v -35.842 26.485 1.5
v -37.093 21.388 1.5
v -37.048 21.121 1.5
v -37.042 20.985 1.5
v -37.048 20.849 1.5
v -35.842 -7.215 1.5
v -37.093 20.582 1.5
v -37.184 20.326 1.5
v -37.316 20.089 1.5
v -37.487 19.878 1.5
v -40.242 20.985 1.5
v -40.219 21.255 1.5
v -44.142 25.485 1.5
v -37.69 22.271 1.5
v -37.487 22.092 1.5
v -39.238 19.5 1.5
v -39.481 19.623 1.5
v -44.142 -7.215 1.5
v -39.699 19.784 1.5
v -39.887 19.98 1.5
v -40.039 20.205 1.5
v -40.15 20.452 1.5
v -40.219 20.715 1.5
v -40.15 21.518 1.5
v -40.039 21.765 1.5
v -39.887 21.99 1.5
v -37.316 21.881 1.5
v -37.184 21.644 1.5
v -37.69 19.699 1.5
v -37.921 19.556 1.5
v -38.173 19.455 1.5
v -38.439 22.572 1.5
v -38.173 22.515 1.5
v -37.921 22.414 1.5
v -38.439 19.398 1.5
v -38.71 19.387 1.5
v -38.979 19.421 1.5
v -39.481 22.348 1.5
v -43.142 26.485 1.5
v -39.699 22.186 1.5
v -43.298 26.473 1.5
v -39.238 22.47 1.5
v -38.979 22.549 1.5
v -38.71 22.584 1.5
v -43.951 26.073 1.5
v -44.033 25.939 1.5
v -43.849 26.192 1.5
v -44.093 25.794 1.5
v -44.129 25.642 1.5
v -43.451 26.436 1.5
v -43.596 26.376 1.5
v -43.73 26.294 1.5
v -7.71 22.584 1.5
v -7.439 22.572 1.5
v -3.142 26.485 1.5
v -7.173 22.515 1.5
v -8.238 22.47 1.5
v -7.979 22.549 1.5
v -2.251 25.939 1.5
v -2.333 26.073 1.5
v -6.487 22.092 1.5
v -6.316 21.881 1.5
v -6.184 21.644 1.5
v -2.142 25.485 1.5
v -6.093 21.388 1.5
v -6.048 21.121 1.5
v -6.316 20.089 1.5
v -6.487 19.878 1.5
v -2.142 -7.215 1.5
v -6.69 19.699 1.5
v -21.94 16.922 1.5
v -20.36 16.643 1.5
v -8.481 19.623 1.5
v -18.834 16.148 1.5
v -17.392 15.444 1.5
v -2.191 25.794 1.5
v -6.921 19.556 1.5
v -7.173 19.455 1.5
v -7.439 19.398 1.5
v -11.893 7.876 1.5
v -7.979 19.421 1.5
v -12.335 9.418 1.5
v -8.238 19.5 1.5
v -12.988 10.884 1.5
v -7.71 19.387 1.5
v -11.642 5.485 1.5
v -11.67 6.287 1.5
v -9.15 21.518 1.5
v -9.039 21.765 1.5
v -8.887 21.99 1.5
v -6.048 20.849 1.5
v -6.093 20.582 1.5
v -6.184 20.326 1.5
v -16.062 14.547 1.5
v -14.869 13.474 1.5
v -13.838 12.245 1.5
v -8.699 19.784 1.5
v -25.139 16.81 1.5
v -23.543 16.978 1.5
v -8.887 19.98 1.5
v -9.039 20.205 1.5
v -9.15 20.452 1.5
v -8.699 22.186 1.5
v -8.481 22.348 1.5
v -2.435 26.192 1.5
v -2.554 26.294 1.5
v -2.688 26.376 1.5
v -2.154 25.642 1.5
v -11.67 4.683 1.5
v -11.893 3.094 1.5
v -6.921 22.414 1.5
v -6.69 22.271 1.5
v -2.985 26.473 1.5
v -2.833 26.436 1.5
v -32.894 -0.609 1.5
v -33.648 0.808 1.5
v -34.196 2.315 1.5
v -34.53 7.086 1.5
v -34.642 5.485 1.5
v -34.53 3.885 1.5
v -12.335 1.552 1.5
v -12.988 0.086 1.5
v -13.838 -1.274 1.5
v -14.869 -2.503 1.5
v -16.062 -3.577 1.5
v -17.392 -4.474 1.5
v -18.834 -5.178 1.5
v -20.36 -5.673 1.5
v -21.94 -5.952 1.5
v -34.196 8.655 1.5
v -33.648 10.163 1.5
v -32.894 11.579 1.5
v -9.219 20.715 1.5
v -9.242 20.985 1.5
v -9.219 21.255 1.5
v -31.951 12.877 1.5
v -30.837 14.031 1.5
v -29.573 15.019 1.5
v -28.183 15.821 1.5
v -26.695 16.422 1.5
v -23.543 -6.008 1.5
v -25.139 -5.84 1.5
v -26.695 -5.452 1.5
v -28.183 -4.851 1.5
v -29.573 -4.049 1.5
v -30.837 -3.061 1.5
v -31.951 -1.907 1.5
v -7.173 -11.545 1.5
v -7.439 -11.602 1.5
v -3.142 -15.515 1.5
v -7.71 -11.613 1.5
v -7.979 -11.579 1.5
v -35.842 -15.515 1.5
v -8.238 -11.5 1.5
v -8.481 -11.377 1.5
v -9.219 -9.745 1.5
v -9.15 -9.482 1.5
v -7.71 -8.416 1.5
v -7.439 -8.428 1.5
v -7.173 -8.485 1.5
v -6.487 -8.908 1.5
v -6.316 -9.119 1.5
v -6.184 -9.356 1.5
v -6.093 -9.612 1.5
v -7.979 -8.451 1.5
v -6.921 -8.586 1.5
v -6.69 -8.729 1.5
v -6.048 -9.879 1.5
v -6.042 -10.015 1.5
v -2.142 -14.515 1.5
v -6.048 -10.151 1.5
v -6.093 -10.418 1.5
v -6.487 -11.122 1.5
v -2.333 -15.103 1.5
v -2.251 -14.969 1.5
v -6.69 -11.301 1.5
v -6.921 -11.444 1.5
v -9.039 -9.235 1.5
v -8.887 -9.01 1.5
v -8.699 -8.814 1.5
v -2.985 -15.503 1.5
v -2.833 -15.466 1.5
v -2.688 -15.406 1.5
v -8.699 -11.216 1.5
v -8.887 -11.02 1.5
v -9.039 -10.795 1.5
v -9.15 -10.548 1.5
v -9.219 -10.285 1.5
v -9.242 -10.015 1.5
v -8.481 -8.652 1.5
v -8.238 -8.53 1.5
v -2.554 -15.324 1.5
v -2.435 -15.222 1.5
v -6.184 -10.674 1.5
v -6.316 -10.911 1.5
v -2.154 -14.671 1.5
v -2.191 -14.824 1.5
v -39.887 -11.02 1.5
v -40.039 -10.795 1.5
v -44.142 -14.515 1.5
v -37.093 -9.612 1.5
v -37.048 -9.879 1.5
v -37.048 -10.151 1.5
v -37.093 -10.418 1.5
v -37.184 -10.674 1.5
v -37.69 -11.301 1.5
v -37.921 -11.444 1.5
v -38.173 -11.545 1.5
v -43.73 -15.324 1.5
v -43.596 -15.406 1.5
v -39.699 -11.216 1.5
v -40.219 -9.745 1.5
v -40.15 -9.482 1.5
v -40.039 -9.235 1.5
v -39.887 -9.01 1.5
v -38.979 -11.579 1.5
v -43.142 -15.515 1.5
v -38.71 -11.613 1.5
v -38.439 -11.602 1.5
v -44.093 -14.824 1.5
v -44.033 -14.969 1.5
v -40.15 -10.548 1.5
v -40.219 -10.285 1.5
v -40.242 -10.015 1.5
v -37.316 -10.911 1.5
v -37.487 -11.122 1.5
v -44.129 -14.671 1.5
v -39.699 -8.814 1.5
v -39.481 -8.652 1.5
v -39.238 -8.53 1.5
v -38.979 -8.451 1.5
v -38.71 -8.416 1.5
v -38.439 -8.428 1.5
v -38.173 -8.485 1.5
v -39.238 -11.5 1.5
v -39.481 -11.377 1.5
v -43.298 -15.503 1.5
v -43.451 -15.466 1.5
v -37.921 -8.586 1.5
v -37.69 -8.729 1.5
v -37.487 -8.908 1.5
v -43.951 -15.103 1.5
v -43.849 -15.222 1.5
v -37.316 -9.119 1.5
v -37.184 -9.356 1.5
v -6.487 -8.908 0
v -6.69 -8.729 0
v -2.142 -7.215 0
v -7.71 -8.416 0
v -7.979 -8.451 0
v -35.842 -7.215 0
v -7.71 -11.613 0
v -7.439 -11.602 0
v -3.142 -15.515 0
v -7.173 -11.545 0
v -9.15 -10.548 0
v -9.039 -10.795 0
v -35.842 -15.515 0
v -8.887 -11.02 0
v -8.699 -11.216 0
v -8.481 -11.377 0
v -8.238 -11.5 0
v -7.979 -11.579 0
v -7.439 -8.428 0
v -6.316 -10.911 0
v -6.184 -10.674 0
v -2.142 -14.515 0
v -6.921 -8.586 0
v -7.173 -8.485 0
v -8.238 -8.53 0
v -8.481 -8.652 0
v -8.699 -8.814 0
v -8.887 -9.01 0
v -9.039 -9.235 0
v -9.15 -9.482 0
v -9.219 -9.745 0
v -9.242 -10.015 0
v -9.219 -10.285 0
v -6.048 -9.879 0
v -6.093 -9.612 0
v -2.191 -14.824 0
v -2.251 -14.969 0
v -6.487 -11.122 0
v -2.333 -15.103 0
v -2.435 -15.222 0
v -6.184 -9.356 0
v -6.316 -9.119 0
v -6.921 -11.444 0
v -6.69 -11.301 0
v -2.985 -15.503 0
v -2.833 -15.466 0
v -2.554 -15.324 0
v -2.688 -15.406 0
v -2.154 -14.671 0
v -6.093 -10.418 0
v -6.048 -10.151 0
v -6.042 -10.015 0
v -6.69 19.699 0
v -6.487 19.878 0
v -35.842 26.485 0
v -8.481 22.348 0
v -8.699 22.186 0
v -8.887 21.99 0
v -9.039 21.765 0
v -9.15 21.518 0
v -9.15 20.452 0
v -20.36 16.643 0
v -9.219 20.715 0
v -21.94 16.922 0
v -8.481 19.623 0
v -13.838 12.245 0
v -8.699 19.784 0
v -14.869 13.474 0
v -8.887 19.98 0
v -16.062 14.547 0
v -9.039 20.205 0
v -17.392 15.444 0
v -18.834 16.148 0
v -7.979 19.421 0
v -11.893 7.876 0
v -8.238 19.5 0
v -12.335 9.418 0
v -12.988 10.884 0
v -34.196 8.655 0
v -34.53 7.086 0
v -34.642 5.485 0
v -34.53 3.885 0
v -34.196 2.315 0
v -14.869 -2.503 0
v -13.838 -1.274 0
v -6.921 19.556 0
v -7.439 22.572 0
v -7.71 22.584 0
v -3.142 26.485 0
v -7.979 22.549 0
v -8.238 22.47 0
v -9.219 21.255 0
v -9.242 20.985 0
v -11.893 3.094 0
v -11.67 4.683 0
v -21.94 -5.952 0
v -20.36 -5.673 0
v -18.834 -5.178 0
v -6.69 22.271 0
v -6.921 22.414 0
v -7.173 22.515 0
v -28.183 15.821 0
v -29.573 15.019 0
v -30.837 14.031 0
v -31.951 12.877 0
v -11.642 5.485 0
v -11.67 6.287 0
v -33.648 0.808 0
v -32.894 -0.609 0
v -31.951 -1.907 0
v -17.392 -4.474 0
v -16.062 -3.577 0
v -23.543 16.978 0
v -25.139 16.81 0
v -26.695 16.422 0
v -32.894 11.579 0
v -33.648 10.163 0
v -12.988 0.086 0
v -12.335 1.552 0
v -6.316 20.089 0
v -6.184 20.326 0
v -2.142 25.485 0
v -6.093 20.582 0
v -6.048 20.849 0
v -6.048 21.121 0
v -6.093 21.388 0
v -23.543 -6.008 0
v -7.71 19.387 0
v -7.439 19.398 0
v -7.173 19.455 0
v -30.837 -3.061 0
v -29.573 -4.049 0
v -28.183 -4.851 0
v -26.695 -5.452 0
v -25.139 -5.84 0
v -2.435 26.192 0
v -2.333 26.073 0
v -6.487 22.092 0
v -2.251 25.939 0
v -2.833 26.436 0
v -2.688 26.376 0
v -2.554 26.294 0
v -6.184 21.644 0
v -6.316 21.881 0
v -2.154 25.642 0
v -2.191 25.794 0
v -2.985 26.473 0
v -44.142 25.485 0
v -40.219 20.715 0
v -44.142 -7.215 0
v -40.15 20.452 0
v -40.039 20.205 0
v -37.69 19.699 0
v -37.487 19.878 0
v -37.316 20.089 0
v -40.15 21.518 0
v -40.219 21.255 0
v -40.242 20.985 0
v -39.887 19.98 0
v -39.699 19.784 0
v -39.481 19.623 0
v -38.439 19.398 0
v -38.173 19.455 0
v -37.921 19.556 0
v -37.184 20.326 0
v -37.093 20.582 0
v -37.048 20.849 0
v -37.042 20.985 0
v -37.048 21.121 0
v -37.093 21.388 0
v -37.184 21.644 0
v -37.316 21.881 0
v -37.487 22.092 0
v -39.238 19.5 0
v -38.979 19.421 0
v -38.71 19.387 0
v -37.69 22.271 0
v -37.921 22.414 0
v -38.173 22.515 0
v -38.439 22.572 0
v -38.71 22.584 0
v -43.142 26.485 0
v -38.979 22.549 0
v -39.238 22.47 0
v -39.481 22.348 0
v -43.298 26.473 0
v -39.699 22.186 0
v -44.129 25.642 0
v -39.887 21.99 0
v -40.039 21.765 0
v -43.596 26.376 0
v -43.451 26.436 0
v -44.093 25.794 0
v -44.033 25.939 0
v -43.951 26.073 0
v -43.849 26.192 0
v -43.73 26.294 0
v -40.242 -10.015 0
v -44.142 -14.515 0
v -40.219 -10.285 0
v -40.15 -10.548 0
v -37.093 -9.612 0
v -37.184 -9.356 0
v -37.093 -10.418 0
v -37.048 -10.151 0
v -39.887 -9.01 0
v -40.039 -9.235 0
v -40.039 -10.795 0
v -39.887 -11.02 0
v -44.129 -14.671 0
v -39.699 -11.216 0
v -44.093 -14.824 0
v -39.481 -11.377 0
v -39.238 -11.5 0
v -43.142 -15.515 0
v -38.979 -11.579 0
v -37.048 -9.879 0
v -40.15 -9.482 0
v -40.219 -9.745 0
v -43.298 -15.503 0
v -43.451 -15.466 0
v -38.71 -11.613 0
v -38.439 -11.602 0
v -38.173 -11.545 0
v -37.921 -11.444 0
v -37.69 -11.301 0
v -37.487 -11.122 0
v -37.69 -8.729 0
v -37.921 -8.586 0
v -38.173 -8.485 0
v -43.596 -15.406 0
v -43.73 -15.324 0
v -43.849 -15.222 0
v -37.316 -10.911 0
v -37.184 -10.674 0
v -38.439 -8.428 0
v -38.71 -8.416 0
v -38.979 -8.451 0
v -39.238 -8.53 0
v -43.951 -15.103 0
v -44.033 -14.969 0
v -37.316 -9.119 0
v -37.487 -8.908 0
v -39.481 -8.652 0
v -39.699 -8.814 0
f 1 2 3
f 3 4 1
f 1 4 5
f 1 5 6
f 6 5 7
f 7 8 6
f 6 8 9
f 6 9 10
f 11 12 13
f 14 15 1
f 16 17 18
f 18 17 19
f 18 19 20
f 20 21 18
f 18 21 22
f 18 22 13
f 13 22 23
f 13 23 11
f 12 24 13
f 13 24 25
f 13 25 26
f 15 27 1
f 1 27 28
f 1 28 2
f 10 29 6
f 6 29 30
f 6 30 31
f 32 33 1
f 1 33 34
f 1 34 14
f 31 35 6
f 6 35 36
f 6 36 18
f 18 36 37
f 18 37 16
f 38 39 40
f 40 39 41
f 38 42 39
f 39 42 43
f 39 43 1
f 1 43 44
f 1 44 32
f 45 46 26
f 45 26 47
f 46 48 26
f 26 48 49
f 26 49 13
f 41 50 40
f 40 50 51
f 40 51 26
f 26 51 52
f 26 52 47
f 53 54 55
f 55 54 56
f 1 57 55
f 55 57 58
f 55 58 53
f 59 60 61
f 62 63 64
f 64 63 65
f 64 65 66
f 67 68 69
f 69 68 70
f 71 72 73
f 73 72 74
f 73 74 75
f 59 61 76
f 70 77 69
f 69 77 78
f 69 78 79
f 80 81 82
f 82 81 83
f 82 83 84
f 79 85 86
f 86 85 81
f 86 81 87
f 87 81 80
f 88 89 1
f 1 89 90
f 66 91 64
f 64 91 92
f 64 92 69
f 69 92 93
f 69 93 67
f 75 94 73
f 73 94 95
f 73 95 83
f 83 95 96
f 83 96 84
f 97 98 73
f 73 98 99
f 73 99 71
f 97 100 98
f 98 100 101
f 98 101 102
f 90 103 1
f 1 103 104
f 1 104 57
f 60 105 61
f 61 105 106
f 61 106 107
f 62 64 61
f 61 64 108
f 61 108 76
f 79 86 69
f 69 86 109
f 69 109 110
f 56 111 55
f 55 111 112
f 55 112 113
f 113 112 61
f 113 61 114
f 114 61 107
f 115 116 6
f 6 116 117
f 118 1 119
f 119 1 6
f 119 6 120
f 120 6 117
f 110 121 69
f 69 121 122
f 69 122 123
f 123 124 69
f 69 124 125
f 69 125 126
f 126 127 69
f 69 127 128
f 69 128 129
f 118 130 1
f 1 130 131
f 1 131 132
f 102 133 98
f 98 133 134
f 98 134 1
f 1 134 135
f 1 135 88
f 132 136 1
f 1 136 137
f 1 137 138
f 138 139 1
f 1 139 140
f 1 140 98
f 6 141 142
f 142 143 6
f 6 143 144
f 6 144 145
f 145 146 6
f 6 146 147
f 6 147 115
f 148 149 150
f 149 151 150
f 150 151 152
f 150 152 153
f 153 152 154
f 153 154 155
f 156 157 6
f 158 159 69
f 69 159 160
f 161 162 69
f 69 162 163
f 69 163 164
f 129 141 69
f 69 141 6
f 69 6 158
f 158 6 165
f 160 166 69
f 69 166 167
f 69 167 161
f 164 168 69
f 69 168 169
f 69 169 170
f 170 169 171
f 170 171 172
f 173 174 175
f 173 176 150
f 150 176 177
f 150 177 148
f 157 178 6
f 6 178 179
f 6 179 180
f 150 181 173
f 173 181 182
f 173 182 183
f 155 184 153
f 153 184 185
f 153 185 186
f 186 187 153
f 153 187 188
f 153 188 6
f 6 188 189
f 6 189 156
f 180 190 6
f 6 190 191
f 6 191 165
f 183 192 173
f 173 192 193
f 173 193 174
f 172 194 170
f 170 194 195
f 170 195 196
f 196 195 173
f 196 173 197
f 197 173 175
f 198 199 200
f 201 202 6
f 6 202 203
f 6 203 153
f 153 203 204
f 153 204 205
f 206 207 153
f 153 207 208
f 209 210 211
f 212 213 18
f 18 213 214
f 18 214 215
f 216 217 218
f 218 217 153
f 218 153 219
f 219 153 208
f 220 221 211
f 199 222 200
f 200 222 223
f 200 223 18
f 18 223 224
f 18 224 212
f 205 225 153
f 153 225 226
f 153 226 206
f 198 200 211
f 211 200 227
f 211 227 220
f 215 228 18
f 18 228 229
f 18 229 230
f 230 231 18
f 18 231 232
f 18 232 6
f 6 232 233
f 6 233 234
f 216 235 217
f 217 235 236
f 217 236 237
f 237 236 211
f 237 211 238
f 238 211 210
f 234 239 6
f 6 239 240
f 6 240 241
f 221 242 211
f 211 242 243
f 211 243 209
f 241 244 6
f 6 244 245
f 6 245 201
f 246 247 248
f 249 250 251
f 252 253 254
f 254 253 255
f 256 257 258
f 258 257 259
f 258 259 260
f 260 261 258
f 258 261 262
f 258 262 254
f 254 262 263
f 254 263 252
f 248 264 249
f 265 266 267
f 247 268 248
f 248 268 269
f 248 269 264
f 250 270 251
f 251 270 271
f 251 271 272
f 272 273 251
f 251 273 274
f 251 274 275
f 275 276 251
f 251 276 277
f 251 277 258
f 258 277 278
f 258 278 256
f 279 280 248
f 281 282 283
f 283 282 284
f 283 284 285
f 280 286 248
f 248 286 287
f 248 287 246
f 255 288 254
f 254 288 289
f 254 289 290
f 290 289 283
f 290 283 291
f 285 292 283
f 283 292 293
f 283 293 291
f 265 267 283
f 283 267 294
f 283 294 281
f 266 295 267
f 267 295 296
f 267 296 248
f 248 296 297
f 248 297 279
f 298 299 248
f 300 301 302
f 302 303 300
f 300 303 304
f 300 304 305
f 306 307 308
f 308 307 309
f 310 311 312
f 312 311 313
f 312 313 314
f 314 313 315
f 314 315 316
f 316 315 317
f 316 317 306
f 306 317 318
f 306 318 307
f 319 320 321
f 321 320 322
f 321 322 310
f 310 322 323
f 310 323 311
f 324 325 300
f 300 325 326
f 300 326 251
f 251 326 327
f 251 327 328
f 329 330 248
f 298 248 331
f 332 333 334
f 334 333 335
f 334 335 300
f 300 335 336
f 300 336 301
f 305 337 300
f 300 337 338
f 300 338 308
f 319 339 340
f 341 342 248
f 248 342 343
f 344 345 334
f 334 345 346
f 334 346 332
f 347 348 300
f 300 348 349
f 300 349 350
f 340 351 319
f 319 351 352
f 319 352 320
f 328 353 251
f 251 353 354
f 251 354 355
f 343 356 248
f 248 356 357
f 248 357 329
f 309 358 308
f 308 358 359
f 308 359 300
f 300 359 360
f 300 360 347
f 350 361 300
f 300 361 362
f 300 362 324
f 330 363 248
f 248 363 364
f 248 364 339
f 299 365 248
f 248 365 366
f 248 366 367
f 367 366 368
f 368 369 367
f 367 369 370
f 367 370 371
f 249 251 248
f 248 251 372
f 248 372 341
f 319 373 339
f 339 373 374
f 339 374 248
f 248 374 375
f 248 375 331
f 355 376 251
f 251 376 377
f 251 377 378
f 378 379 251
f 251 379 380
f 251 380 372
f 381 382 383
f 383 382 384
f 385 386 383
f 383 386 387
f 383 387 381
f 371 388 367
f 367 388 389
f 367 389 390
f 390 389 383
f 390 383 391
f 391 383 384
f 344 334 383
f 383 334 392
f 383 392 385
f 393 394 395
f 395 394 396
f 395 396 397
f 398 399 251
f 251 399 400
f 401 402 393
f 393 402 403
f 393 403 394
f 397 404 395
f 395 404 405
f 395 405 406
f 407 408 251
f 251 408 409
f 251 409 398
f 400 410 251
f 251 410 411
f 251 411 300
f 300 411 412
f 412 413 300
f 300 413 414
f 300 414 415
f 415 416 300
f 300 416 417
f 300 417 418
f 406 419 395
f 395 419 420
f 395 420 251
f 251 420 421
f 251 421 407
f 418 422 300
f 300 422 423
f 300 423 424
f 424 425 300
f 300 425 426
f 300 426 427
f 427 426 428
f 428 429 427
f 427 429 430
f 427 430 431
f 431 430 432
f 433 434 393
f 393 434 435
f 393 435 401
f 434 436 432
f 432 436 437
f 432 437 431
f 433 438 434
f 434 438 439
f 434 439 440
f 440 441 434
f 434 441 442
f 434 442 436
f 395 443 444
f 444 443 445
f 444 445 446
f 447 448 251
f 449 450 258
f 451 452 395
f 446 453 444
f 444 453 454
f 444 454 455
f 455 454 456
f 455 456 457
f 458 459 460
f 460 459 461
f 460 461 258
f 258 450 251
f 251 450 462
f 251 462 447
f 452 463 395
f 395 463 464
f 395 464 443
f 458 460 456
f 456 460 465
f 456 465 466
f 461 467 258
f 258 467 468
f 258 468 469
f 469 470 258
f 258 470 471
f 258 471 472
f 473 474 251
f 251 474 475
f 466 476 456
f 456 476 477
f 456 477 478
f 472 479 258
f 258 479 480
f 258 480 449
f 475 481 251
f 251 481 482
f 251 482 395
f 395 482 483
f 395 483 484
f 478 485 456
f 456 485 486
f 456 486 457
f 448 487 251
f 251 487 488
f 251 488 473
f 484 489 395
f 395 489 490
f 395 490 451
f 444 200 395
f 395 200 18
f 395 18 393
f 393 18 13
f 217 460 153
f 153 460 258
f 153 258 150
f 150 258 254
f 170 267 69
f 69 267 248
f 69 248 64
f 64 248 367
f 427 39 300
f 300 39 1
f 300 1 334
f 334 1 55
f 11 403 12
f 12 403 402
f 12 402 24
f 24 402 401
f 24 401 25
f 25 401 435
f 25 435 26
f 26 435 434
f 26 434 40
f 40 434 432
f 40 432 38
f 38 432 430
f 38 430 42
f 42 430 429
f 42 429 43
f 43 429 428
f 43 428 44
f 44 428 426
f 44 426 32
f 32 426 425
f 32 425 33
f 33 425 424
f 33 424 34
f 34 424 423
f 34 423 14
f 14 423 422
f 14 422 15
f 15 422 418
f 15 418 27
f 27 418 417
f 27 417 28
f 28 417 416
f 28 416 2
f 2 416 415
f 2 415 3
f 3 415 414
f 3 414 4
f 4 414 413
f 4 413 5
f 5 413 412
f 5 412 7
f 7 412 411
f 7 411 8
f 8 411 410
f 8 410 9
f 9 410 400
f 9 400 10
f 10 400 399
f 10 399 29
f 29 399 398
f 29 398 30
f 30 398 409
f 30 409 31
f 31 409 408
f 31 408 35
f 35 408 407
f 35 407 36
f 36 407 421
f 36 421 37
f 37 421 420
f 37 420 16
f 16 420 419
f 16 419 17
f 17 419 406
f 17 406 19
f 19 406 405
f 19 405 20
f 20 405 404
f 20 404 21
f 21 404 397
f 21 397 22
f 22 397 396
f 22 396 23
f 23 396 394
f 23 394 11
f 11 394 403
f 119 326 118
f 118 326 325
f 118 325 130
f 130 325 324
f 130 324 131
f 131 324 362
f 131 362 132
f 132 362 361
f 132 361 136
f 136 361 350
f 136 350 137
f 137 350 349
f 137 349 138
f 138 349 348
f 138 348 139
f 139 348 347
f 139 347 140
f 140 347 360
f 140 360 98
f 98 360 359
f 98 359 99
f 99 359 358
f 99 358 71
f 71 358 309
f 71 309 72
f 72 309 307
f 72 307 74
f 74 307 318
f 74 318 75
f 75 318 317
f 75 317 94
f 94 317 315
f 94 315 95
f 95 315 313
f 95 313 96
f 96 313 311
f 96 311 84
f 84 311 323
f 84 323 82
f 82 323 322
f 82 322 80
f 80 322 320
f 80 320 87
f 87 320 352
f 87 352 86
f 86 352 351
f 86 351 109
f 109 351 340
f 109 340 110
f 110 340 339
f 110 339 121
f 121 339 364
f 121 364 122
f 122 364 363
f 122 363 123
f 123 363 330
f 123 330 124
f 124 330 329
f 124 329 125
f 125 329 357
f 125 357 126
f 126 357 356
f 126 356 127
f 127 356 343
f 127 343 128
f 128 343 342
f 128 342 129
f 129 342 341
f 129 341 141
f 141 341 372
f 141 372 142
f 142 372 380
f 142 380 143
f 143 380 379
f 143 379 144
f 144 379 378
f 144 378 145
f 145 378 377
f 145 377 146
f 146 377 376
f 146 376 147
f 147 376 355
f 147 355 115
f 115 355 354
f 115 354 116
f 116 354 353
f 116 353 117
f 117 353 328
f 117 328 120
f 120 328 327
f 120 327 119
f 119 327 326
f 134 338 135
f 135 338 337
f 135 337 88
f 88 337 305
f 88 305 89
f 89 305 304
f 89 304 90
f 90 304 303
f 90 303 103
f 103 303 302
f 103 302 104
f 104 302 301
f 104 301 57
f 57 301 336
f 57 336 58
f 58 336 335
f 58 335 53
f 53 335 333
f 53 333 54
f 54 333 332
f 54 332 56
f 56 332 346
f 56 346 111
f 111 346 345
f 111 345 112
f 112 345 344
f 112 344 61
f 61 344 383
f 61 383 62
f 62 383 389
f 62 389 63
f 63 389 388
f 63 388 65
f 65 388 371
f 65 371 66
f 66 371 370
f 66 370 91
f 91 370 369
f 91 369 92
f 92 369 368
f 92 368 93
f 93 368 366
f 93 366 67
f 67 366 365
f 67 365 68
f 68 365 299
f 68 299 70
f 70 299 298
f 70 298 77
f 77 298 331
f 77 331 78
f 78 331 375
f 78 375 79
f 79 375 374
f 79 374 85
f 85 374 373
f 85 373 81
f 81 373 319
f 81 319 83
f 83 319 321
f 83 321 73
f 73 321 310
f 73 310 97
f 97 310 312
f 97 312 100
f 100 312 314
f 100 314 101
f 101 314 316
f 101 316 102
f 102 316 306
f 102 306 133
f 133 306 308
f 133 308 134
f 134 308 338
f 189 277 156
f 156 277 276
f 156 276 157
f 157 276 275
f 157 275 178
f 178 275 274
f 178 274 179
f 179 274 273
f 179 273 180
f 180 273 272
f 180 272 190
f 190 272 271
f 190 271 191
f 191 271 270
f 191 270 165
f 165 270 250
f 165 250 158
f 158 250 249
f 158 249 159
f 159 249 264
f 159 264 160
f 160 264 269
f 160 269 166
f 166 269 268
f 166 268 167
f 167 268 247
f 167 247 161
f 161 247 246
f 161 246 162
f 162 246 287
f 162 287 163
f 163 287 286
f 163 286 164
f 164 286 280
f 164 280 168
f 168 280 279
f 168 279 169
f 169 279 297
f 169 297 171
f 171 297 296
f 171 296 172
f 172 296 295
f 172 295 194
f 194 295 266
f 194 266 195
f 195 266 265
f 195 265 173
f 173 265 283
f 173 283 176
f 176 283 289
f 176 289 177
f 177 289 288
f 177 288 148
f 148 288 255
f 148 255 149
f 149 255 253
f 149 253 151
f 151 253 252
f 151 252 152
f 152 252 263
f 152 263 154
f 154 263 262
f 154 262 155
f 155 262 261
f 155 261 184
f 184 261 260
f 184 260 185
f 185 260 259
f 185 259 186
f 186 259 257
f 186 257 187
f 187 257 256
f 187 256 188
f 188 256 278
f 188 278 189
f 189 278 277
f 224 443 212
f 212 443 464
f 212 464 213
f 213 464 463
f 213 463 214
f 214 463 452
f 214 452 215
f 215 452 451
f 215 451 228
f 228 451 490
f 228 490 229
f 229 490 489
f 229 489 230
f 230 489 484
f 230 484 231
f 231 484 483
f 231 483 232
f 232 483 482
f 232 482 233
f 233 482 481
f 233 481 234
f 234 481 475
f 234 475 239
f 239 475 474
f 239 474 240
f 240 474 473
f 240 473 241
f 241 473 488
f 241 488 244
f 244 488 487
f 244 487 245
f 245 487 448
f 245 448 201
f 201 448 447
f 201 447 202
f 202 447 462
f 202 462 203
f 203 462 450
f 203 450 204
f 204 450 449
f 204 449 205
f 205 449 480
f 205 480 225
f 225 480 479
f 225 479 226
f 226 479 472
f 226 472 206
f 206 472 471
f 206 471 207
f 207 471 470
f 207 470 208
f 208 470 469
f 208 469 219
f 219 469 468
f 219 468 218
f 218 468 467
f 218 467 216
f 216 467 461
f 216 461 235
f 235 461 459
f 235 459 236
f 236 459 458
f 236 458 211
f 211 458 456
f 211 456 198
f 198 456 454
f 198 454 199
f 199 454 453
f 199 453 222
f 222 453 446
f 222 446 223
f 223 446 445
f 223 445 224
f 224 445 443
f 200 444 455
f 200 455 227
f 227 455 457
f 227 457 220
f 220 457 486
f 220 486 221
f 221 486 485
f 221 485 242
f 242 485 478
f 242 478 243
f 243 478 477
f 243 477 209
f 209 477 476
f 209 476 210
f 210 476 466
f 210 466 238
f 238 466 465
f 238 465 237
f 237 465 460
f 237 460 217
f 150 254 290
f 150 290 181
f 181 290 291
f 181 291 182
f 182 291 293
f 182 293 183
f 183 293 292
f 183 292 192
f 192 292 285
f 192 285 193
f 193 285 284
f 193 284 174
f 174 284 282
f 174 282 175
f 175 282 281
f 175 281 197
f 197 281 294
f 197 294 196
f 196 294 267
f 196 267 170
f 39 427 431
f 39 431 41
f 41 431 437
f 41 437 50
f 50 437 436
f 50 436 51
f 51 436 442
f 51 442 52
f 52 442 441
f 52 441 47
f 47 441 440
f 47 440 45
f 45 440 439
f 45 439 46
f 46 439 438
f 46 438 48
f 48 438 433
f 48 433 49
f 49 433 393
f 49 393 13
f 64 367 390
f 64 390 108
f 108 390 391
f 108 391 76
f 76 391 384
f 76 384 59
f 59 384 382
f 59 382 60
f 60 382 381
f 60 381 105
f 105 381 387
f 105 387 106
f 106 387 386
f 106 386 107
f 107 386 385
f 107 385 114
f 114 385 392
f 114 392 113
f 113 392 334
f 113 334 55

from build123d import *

# Parameters (mm, degrees)
SKETCH_1_W      = 42
SKETCH_1_H      = 42
SKETCH_1_R      = 1.6
SKETCH_1_R_2    = 11.5
EXTRUDE_1_DEPTH = 1.5
FILLET_1_R      = 1


with BuildPart() as part:
    # 草图1 → 凸台-拉伸1 (new body)
    with BuildSketch(Plane.XY):
        with Locations((-23.141791045, 5.485074627)):
            Rectangle(SKETCH_1_W, SKETCH_1_H)
        with Locations((-38.641791045, 20.985074627)):
            Circle(SKETCH_1_R, mode=Mode.SUBTRACT)
        with Locations((-23.141791045, 5.485074627)):
            Circle(SKETCH_1_R_2, mode=Mode.SUBTRACT)
        with Locations(Location((-7.641791045, 20.985074627, 0), (0, 0, 180))):
            Circle(SKETCH_1_R, mode=Mode.SUBTRACT)
        with Locations((-7.641791045, -10.014925373)):
            Circle(SKETCH_1_R, mode=Mode.SUBTRACT)
        with Locations(Location((-38.641791045, -10.014925373, 0), (0, 0, 180))):
            Circle(SKETCH_1_R, mode=Mode.SUBTRACT)
    extrude(amount=EXTRUDE_1_DEPTH)

    # 圆角1
    fillet_1_edges = [part.edges().sort_by_distance(p)[0] for p in [
        (-44.141791045, 26.485074627, 0.75),
        (-2.141791045, 26.485074627, 0.75),
        (-2.141791045, -15.514925373, 0.75),
        (-44.141791045, -15.514925373, 0.75),
    ]]
    fillet(fillet_1_edges, radius=FILLET_1_R)


solid = part.part
